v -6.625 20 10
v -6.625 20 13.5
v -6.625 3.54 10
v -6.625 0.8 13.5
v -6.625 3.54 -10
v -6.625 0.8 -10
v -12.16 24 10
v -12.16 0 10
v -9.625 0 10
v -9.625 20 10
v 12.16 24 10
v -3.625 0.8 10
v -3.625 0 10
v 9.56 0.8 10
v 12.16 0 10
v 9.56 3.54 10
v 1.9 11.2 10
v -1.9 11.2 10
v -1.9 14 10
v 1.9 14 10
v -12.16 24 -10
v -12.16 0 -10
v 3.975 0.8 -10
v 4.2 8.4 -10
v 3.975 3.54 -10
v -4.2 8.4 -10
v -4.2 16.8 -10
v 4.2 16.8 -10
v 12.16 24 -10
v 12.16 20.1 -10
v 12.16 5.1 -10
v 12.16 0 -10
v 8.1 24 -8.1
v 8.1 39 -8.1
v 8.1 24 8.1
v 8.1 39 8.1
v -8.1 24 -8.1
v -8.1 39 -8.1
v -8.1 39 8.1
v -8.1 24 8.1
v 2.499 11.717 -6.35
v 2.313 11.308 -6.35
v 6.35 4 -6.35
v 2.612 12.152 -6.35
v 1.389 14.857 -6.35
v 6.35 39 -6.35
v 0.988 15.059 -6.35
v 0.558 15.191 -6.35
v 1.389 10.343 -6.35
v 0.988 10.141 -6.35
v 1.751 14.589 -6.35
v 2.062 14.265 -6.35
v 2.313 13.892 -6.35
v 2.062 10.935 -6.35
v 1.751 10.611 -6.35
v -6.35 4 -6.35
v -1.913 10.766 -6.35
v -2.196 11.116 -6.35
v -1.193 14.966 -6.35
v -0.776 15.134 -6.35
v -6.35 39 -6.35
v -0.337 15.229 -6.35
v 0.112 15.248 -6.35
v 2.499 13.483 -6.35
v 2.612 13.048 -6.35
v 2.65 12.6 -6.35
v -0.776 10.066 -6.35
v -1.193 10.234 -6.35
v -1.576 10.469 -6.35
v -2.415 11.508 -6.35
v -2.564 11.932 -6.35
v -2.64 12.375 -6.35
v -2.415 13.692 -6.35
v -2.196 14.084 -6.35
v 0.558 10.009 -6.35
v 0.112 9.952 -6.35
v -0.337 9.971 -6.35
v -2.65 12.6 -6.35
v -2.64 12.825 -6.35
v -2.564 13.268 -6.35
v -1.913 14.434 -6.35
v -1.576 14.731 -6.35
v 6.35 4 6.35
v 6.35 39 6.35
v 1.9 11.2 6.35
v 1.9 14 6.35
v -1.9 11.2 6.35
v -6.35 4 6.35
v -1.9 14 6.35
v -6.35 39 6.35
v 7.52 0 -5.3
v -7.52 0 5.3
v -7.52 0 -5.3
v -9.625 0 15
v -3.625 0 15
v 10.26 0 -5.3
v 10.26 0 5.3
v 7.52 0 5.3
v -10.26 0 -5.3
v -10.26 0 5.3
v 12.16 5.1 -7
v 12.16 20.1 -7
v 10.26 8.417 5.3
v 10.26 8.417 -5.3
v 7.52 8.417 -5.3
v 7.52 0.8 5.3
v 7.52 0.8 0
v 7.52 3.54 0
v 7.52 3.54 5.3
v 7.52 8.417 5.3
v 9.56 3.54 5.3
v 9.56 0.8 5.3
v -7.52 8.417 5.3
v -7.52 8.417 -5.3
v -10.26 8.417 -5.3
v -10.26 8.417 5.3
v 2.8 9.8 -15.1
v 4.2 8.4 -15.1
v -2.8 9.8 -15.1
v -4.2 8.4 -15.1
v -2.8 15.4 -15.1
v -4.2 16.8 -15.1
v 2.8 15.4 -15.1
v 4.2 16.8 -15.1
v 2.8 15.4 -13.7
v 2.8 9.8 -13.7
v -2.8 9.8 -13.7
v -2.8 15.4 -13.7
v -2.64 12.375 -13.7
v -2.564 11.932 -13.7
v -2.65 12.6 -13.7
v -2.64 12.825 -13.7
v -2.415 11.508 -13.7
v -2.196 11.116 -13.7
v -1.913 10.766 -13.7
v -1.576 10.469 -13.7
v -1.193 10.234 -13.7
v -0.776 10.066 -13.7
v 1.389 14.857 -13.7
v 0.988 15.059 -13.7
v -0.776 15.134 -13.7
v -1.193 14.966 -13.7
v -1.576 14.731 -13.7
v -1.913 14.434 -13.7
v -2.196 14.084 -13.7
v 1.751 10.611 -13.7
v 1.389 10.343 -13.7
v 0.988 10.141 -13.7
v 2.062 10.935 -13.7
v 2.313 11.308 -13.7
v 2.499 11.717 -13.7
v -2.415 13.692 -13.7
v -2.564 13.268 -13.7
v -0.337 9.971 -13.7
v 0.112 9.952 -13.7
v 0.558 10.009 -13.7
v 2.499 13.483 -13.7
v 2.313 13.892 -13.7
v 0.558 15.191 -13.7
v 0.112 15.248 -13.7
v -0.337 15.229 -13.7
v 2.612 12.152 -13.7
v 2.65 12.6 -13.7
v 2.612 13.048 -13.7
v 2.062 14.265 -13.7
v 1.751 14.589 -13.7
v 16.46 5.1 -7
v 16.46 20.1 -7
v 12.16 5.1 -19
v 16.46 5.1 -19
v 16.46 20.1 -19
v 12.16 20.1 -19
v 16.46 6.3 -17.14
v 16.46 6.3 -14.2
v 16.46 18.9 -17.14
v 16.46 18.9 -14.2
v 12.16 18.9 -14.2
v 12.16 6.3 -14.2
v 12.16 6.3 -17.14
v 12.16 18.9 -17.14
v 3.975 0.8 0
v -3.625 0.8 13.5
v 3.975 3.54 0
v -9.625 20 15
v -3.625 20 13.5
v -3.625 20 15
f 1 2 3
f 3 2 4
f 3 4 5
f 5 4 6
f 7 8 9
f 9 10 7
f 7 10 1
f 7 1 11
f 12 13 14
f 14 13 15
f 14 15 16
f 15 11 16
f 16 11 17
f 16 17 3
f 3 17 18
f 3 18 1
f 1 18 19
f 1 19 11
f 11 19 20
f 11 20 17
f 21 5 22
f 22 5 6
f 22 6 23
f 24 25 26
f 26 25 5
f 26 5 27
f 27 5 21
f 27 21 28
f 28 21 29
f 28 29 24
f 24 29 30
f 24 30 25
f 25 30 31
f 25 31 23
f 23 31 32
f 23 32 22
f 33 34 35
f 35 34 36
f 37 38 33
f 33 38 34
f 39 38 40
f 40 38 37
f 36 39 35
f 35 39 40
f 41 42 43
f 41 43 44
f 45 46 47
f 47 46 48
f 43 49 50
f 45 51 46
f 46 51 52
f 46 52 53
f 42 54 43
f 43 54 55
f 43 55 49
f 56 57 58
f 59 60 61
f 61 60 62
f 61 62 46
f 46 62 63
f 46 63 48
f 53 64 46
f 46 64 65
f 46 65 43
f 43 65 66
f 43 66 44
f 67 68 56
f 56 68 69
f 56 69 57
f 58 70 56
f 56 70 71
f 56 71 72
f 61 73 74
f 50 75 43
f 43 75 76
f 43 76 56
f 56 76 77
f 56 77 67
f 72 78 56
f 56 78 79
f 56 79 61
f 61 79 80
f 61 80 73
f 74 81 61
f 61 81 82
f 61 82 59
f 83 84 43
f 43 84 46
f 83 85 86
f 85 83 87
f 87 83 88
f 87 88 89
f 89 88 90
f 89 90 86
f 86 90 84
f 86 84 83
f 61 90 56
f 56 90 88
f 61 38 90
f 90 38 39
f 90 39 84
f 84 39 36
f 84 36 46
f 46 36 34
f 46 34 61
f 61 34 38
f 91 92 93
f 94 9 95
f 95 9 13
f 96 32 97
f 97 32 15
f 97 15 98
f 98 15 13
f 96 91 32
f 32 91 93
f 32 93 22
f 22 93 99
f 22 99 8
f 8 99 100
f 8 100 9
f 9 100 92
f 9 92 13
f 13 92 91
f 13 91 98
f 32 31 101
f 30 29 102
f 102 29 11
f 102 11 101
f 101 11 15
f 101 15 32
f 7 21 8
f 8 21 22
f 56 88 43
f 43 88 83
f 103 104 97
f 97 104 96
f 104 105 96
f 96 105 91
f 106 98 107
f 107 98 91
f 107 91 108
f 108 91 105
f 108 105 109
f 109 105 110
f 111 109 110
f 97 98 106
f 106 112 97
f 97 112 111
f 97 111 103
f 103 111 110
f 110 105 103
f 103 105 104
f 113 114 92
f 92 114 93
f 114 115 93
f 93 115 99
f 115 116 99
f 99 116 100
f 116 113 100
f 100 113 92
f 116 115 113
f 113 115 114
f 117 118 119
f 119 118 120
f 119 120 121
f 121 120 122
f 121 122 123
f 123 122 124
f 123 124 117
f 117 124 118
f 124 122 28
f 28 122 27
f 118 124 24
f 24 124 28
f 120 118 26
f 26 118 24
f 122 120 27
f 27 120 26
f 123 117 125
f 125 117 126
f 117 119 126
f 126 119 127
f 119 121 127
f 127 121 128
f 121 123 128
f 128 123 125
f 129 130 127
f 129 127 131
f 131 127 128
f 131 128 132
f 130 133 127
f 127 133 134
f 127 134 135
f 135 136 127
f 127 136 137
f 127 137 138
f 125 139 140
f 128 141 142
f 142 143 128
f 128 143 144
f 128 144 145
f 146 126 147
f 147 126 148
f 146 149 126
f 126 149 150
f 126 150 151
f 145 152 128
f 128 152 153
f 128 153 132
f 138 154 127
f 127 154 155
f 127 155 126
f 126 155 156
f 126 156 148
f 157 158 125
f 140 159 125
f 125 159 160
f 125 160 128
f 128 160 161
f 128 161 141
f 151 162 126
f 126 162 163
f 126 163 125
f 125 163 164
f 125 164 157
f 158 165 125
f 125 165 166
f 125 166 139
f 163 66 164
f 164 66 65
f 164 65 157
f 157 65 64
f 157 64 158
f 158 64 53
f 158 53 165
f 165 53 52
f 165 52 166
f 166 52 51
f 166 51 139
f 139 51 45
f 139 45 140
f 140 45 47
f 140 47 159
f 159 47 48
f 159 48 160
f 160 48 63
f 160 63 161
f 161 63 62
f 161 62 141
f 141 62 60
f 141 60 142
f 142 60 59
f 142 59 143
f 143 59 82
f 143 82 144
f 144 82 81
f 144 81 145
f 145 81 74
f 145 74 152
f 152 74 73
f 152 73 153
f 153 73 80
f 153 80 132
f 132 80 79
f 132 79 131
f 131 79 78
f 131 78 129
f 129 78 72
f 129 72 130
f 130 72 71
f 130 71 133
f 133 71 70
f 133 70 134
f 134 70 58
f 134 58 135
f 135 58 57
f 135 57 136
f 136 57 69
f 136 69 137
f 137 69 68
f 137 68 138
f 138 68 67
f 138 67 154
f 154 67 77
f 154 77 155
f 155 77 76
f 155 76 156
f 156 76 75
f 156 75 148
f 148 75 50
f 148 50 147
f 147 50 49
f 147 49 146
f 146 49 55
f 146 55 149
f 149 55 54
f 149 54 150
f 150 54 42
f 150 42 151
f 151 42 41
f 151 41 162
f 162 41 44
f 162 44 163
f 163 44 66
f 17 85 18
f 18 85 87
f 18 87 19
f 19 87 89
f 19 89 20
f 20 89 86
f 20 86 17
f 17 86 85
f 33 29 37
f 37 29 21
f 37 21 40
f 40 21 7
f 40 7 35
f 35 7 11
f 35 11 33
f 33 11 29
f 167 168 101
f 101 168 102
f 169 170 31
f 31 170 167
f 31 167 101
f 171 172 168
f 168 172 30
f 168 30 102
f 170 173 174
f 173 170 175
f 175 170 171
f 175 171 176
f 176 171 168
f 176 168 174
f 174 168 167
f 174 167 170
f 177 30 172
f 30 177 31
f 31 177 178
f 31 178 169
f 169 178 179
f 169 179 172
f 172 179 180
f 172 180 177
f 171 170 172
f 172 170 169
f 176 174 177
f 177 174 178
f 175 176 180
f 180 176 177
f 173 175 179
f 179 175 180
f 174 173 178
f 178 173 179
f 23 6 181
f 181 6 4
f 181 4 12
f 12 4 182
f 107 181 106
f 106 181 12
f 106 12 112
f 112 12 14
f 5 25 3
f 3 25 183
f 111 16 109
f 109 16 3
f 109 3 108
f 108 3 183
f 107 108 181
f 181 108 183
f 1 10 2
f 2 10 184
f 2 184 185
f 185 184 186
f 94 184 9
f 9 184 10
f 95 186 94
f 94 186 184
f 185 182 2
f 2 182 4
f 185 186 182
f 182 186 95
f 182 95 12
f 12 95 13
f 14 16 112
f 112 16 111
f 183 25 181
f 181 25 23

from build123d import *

# Parameters (mm, degrees)
SKETCH_1_W           = 16.2
SKETCH_1_H           = 16.2
SKETCH_1_W_2         = 12.7
SKETCH_1_H_2         = 12.7
EXTRUDE_1_DEPTH      = 39
SKETCH_3_W           = 12.7
SKETCH_3_H           = 12.7
EXTRUDE_2_DEPTH      = 4
SKETCH_5_W           = 24.32
SKETCH_5_H           = 20
SKETCH_5_W_2         = 14.7
SKETCH_5_H_2         = 14.7
EXTRUDE_3_DEPTH      = 20
SKETCH_9_W           = 2.74
SKETCH_9_H           = 10.6
CUT_EXTRUDE_5_DEPTH  = 8.416671881
SKETCH_13_W          = 8.4
SKETCH_13_H          = 8.4
SKETCH_13_W_2        = 5.6
SKETCH_13_H_2        = 5.6
EXTRUDE_6_DEPTH      = 5.1
SKETCH_27_W          = 5.6
SKETCH_27_H          = 5.6
SKETCH_27_R          = 2.65
EXTRUDE_10_DEPTH     = 3.7
CUT_EXTRUDE_10_REACH = 47.485
SKETCH_33_R          = 2.65
CUT_EXTRUDE_13_REACH = 49.947
SKETCH_23_W          = 3.8
SKETCH_23_H          = 2.8
SKETCH_34_W          = 24.32
SKETCH_34_H          = 20
SKETCH_34_W_2        = 16.2
SKETCH_34_H_2        = 16.2
EXTRUDE_11_DEPTH     = 4
SKETCH_35_W          = 3
SKETCH_35_H          = 15
EXTRUDE_12_DEPTH     = 4.3
SKETCH_38_W          = 4.3
SKETCH_38_H          = 15
EXTRUDE_13_DEPTH     = 9
CUT_EXTRUDE_14_REACH = 53.972
SKETCH_39_W          = 2.94
SKETCH_39_H          = 12.6
SKETCH_23_4_W        = 13.25
SKETCH_23_4_H        = 2.74
CUT_EXTRUDE_16_DEPTH = 10
SKETCH_42_W          = 3
SKETCH_42_H          = 19.2
EXTRUDE_14_DEPTH     = 5
SKETCH_45_W          = 1.5
SKETCH_45_H          = 19.2
EXTRUDE_15_DEPTH     = 3
SKETCH_46_W          = 2.935
SKETCH_46_H          = 2.74
CUT_EXTRUDE_18_DEPTH = 10
CUT_EXTRUDE_19_REACH = 48.4
SKETCH_47_W          = 10.6
SKETCH_47_H          = 2.74
SKETCH_49_W          = 6
SKETCH_49_H          = 0.8
EXTRUDE_17_DEPTH     = 5


with BuildPart() as part:
    # 草圖1 → 填料-伸長1 (new body)
    with BuildSketch(Plane(origin=(0, 0, 0), x_dir=(1, 0, 0), z_dir=(0, 1, 0))):
        Rectangle(SKETCH_1_W, SKETCH_1_H)
        Rectangle(SKETCH_1_W_2, SKETCH_1_H_2, mode=Mode.SUBTRACT)
    extrude(amount=EXTRUDE_1_DEPTH)



with BuildPart() as body_2:
    # 草圖3 → 填料-伸長2 (new body)
    with BuildSketch(Plane(origin=(0, 0, 0), x_dir=(1, 0, 0), z_dir=(0, 1, 0))):
        Rectangle(SKETCH_3_W, SKETCH_3_H)
    extrude(amount=EXTRUDE_2_DEPTH)


with BuildPart() as part_1:
    add(part.part)

    add(body_2.part)  # 填料-伸長3 merges body 2
    # 草圖5 → 填料-伸長3 (add)
    with BuildSketch(Plane(origin=(0, 0, 0), x_dir=(1, 0, 0), z_dir=(0, 1, 0))):
        Rectangle(SKETCH_5_W, SKETCH_5_H)
        Rectangle(SKETCH_5_W_2, SKETCH_5_H_2, mode=Mode.SUBTRACT)
    extrude(amount=EXTRUDE_3_DEPTH)

    # 草圖9 → 除料-伸長5 (cut)
    with BuildSketch(Plane(origin=(0, 0, 0), x_dir=(1, 0, 0), z_dir=(0, 1, 0))):
        with Locations((-8.89, 0)):
            Rectangle(SKETCH_9_W, SKETCH_9_H)
        with Locations((8.89, 0)):
            Rectangle(SKETCH_9_W, SKETCH_9_H)
    extrude(amount=CUT_EXTRUDE_5_DEPTH, mode=Mode.SUBTRACT)

    # 草圖13 → 填料-伸長6 (add)
    with BuildSketch(Plane(origin=(0, 0, -10), x_dir=(-1, 0, 0), z_dir=(0, 0, -1))):
        with Locations((0, 12.6)):
            Rectangle(SKETCH_13_W, SKETCH_13_H)
        with Locations((0, 12.6)):
            Rectangle(SKETCH_13_W_2, SKETCH_13_H_2, mode=Mode.SUBTRACT)
    extrude(amount=EXTRUDE_6_DEPTH)

    # 草圖27 → 填料-伸長10 (add)
    with BuildSketch(Plane(origin=(0, 0, -10), x_dir=(-1, 0, 0), z_dir=(0, 0, -1))):
        with Locations((0, 12.6)):
            Rectangle(SKETCH_27_W, SKETCH_27_H)
        with Locations((0, 12.6)):
            Circle(SKETCH_27_R, mode=Mode.SUBTRACT)
    extrude(amount=EXTRUDE_10_DEPTH)

    # 草圖33 → 除料-伸長10 (cut, up to next)
    with BuildSketch(Plane(origin=(0, 0, -10), x_dir=(-1, 0, 0), z_dir=(0, 0, -1)), mode=Mode.PRIVATE) as cut_extrude_10_sk1:
        with Locations((0, 12.6)):
            Circle(SKETCH_33_R)
    cut_extrude_10_tool1 = extrude(cut_extrude_10_sk1.sketch, amount=-CUT_EXTRUDE_10_REACH, mode=Mode.PRIVATE) & part_1.part
    add(cut_extrude_10_tool1.solids().sort_by_distance((0, 12.6, -10))[0], mode=Mode.SUBTRACT)

    # 草圖23 → 除料-伸長13 (cut, up to next)
    with BuildSketch(Plane.XY.offset(10), mode=Mode.PRIVATE) as cut_extrude_13_sk1:
        with Locations((0, 12.6)):
            Rectangle(SKETCH_23_W, SKETCH_23_H)
    cut_extrude_13_tool1 = extrude(cut_extrude_13_sk1.sketch, amount=-CUT_EXTRUDE_13_REACH, mode=Mode.PRIVATE) & part_1.part
    add(cut_extrude_13_tool1.solids().sort_by_distance((0, 12.6, 10))[0], mode=Mode.SUBTRACT)

    # 草圖34 → 填料-伸長11 (add)
    with BuildSketch(Plane(origin=(0, 20, 0), x_dir=(1, 0, 0), z_dir=(0, 1, 0))):
        Rectangle(SKETCH_34_W, SKETCH_34_H)
        Rectangle(SKETCH_34_W_2, SKETCH_34_H_2, mode=Mode.SUBTRACT)
    extrude(amount=EXTRUDE_11_DEPTH)

    # 草圖35 → 填料-伸長12 (add)
    with BuildSketch(Plane(origin=(12.16, 0, 0), x_dir=(0, 0, -1), z_dir=(1, 0, 0))):
        with Locations((8.5, 12.6)):
            Rectangle(SKETCH_35_W, SKETCH_35_H)
    extrude(amount=EXTRUDE_12_DEPTH)

    # 草圖38 → 填料-伸長13 (add)
    with BuildSketch(Plane(origin=(0, 0, -10), x_dir=(-1, 0, 0), z_dir=(0, 0, -1))):
        with Locations((-14.31, 12.6)):
            Rectangle(SKETCH_38_W, SKETCH_38_H)
    extrude(amount=EXTRUDE_13_DEPTH)

    # 草圖39 → 除料-伸長14 (cut, up to next)
    with BuildSketch(Plane(origin=(16.46, 0, 0), x_dir=(0, 0, -1), z_dir=(1, 0, 0)), mode=Mode.PRIVATE) as cut_extrude_14_sk1:
        with Locations((15.67, 12.6)):
            Rectangle(SKETCH_39_W, SKETCH_39_H)
    cut_extrude_14_tool1 = extrude(cut_extrude_14_sk1.sketch, amount=-CUT_EXTRUDE_14_REACH, mode=Mode.PRIVATE) & part_1.part
    add(cut_extrude_14_tool1.solids().sort_by_distance((16.46, 12.6, -15.67))[0], mode=Mode.SUBTRACT)

    # 草圖23<4> → 除料-伸長16 (cut)
    with BuildSketch(Plane.XY.offset(10)):
        with Locations((0, 2.17)):
            Rectangle(SKETCH_23_4_W, SKETCH_23_4_H)
    extrude(amount=-CUT_EXTRUDE_16_DEPTH, mode=Mode.SUBTRACT)

    # 草圖42 → 填料-伸長14 (add)
    with BuildSketch(Plane.XY.offset(10)):
        with Locations((-8.125, 10.4)):
            Rectangle(SKETCH_42_W, SKETCH_42_H)
    extrude(amount=EXTRUDE_14_DEPTH)

    # 草圖45 → 填料-伸長15 (add)
    with BuildSketch(Plane(origin=(-6.625, 0, 0), x_dir=(0, 0, -1), z_dir=(1, 0, 0))):
        with Locations((-14.25, 10.4)):
            Rectangle(SKETCH_45_W, SKETCH_45_H)
    extrude(amount=EXTRUDE_15_DEPTH)

    # 草圖46 → 除料-伸長18 (cut)
    with BuildSketch(Plane.XY.offset(10)):
        with Locations((8.0925, 2.17)):
            Rectangle(SKETCH_46_W, SKETCH_46_H)
    extrude(amount=-CUT_EXTRUDE_18_DEPTH, mode=Mode.SUBTRACT)

    # 草圖47 → 除料-伸長19 (cut, up to next)
    with BuildSketch(Plane.XY, mode=Mode.PRIVATE) as cut_extrude_19_sk1:
        with Locations((-1.325, 2.17)):
            Rectangle(SKETCH_47_W, SKETCH_47_H)
    cut_extrude_19_tool1 = extrude(cut_extrude_19_sk1.sketch, amount=-CUT_EXTRUDE_19_REACH, mode=Mode.PRIVATE) & part_1.part
    add(cut_extrude_19_tool1.solids().sort_by_distance((-1.325, 2.17, 0))[0], mode=Mode.SUBTRACT)

    # 草圖49 → 填料-伸長17 (add)
    with BuildSketch(Plane.XY.offset(10)):
        with Locations((-6.625, 0.4)):
            Rectangle(SKETCH_49_W, SKETCH_49_H)
    extrude(amount=EXTRUDE_17_DEPTH)


solid = part_1.part
